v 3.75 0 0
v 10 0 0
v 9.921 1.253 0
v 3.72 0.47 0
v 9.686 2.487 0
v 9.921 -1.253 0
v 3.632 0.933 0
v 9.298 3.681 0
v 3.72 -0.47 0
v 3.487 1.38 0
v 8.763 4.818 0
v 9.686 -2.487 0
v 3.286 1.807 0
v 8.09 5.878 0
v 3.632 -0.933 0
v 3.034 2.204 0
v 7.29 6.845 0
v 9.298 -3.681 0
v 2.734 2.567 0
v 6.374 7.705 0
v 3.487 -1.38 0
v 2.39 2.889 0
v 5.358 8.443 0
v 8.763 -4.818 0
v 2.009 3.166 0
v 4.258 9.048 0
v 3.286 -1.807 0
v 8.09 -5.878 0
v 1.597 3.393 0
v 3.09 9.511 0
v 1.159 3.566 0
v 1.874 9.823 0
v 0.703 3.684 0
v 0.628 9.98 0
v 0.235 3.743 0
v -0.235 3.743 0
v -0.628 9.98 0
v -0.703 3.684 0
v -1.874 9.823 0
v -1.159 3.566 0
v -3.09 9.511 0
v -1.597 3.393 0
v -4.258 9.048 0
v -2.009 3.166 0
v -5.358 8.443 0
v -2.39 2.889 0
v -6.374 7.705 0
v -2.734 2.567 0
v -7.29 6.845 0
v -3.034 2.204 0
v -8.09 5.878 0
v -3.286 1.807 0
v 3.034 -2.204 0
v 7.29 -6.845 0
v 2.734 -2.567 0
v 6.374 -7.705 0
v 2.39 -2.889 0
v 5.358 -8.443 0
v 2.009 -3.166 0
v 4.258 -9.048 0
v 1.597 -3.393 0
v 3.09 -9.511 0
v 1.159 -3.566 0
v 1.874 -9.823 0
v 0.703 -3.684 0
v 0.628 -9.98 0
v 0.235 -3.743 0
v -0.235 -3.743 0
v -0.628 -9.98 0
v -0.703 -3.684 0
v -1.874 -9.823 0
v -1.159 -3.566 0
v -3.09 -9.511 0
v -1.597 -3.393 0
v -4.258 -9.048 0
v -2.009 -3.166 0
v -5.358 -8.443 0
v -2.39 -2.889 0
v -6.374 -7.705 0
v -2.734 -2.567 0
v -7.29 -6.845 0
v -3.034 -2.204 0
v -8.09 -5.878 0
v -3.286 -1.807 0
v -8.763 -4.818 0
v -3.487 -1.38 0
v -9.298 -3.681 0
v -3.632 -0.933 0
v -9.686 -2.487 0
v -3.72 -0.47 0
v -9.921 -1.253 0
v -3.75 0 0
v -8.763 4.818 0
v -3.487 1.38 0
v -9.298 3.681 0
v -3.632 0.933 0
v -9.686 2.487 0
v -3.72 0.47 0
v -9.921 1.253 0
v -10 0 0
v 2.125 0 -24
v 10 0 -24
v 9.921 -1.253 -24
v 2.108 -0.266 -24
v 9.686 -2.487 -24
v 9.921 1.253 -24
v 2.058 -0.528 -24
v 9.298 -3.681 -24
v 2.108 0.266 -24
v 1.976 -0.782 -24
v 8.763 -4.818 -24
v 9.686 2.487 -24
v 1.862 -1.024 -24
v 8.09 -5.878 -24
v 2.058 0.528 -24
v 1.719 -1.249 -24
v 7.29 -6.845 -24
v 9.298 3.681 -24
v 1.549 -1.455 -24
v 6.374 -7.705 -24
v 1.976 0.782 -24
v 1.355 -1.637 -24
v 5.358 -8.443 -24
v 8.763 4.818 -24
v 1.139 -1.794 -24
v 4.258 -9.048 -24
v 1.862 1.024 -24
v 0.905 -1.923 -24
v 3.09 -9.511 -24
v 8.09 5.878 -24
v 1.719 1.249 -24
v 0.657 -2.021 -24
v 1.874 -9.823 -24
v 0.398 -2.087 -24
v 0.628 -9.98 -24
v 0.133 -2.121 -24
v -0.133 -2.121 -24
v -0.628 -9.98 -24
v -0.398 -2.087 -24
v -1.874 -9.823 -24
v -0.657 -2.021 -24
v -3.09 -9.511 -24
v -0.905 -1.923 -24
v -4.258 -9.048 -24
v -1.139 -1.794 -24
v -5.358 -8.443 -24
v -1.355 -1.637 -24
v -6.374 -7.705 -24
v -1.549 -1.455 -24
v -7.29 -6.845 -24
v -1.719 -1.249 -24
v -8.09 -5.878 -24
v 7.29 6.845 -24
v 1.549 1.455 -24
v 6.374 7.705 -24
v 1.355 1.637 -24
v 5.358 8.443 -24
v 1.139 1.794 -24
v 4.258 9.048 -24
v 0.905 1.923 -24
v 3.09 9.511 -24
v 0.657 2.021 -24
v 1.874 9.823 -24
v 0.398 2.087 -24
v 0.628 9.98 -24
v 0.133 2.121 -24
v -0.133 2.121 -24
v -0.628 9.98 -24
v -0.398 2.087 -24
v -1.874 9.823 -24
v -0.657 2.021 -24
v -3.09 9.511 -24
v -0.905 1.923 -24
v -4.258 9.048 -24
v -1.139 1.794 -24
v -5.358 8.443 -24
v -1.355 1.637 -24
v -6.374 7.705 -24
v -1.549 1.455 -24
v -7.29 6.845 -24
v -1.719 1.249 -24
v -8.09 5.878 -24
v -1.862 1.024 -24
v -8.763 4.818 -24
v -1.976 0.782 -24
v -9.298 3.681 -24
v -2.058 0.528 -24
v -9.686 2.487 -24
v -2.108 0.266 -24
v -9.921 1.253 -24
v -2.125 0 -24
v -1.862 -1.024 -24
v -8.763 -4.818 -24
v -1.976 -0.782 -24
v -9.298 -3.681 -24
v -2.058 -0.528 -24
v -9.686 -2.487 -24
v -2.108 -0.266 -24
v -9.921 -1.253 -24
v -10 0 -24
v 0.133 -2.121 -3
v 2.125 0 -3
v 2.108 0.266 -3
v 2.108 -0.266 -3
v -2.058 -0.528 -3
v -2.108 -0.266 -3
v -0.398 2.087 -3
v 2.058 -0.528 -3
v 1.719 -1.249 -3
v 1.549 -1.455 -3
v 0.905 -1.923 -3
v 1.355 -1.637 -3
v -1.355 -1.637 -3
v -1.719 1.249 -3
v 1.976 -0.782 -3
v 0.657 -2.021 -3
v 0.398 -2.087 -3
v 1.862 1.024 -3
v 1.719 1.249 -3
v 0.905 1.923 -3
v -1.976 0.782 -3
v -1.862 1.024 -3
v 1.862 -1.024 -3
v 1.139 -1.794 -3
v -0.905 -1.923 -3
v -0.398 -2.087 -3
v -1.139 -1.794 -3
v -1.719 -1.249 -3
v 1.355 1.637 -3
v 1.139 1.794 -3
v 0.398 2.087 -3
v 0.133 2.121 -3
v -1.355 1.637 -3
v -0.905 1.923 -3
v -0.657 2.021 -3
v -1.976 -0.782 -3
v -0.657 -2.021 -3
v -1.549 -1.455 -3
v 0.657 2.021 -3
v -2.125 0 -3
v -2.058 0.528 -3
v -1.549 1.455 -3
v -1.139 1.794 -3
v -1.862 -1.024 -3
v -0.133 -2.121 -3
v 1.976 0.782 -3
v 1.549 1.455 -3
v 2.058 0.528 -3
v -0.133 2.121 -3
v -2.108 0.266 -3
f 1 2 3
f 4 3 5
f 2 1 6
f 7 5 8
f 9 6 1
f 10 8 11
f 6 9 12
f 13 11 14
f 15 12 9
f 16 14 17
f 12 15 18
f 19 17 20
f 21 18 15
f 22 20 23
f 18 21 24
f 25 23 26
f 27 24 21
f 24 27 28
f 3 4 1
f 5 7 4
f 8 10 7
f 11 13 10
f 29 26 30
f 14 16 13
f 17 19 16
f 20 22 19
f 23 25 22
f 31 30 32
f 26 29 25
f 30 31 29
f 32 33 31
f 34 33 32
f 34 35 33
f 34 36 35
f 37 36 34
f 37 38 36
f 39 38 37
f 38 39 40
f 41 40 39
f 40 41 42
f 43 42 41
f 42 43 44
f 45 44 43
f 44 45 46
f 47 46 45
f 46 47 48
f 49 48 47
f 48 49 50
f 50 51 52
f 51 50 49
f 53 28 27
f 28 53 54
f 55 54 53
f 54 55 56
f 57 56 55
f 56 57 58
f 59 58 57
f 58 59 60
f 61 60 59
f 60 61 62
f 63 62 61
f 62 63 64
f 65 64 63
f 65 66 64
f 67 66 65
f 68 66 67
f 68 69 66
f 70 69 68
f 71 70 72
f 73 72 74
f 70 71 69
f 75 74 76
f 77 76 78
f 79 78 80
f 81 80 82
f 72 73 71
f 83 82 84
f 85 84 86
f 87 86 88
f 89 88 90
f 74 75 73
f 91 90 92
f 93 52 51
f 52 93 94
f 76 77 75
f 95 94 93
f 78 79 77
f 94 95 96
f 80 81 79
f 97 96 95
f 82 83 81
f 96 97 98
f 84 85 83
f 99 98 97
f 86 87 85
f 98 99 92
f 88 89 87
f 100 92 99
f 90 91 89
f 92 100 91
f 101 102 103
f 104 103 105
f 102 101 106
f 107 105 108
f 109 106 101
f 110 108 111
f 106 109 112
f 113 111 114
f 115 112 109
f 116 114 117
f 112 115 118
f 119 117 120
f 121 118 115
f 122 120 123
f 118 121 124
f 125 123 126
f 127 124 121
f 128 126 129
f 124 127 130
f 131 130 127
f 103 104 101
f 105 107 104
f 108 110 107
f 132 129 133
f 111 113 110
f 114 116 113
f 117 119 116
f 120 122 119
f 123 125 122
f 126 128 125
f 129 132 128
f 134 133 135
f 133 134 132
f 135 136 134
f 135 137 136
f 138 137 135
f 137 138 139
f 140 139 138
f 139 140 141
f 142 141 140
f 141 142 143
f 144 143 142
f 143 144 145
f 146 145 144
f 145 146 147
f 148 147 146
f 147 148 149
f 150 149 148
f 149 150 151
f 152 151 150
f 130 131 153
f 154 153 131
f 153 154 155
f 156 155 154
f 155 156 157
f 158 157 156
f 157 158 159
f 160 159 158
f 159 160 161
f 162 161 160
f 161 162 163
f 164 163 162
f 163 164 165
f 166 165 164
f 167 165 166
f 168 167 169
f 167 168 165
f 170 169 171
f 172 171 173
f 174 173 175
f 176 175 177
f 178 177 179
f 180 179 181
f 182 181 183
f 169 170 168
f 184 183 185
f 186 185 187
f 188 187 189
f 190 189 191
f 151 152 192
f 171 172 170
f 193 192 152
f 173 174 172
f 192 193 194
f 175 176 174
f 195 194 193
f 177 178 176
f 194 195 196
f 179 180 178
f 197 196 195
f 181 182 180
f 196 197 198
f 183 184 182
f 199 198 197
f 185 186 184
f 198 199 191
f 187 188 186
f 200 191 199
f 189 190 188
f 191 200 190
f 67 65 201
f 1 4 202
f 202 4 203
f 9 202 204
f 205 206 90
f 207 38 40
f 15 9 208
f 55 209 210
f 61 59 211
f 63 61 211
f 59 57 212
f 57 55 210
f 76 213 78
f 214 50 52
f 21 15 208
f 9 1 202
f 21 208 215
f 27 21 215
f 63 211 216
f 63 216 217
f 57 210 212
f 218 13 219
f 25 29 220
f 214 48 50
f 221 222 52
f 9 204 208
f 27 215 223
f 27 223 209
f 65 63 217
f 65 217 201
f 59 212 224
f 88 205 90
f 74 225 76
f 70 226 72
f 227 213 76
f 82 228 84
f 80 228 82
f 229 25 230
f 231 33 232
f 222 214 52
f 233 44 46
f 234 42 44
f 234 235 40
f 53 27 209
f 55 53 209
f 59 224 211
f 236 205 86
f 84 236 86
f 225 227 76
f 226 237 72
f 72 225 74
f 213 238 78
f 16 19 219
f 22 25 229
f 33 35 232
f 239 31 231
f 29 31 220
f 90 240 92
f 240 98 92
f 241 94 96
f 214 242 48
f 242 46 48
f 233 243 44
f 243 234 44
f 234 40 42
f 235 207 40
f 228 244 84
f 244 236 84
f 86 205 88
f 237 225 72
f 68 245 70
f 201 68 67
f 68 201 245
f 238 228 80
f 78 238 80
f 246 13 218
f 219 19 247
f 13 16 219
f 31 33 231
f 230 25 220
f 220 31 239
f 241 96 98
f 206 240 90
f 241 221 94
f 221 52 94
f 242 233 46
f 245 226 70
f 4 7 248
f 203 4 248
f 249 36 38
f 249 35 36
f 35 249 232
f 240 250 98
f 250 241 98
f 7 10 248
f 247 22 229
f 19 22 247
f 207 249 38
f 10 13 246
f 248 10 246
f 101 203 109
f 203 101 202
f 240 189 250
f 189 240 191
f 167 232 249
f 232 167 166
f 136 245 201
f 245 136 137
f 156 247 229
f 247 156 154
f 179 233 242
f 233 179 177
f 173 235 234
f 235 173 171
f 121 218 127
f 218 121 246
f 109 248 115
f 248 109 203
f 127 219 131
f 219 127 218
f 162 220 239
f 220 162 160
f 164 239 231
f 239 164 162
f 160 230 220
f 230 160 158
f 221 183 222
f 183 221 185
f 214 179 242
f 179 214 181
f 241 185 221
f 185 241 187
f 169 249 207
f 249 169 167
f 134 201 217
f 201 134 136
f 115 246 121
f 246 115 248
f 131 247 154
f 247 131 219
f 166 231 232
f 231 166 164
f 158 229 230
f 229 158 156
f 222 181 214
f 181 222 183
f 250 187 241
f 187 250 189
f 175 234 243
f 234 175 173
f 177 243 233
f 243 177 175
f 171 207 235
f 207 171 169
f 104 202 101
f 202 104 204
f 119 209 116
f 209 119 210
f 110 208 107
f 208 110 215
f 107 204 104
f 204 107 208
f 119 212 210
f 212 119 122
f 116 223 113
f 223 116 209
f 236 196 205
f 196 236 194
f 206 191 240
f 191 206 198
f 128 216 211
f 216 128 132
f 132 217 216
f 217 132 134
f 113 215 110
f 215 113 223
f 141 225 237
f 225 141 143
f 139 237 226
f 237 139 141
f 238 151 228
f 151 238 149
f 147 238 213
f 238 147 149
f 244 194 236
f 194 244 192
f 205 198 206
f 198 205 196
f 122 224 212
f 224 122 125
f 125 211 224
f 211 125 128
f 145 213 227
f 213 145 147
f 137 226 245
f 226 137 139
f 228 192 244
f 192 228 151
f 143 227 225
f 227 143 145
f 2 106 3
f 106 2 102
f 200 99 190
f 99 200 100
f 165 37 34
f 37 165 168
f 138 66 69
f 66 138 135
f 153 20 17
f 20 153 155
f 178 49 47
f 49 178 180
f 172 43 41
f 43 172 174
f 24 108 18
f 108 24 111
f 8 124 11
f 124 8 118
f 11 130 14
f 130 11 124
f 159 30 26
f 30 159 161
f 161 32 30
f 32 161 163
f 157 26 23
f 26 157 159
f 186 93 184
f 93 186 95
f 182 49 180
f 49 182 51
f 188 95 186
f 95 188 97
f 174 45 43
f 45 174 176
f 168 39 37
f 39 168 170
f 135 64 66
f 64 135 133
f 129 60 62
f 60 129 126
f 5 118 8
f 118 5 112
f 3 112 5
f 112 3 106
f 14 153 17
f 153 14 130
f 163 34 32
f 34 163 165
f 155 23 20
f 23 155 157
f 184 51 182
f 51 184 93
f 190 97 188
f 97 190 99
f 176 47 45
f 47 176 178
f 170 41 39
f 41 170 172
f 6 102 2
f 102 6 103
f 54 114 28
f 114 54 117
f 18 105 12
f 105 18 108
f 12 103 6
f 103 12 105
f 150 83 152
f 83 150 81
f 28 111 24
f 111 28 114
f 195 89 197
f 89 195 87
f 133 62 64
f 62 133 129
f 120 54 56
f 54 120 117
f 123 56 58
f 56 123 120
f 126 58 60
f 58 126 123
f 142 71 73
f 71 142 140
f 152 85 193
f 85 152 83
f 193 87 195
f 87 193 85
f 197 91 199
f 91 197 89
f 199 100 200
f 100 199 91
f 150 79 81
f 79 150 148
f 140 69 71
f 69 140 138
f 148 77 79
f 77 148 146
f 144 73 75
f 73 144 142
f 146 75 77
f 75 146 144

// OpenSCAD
$fn = 50;


difference() {
	union() {
		translate(v = [0, 0, -24.0000000000]) {
			cylinder(h = 24, r = 10.0000000000);
		}
		cylinder(h = 0, r = 19.0000000000);
	}
	union() {
		translate(v = [0, 0, 0]) {
			rotate(a = [0, 0, 0]) {
				difference() {
					union() {
						#translate(v = [0, 0, -24.0000000000]) {
							cylinder(h = 24, r = 2.0000000000);
						}
						#translate(v = [0, 0, -3]) {
							cylinder(h = 3, r = 10.0000000000, r1 = 2.1250000000, r2 = 3.7500000000);
						}
						#translate(v = [0, 0, -24.0000000000]) {
							cylinder(h = 24, r = 2.1250000000);
						}
						#translate(v = [0, 0, -24.0000000000]) {
							cylinder(h = 24, r = 2.0000000000);
						}
					}
					union();
				}
			}
		}
	}
}
